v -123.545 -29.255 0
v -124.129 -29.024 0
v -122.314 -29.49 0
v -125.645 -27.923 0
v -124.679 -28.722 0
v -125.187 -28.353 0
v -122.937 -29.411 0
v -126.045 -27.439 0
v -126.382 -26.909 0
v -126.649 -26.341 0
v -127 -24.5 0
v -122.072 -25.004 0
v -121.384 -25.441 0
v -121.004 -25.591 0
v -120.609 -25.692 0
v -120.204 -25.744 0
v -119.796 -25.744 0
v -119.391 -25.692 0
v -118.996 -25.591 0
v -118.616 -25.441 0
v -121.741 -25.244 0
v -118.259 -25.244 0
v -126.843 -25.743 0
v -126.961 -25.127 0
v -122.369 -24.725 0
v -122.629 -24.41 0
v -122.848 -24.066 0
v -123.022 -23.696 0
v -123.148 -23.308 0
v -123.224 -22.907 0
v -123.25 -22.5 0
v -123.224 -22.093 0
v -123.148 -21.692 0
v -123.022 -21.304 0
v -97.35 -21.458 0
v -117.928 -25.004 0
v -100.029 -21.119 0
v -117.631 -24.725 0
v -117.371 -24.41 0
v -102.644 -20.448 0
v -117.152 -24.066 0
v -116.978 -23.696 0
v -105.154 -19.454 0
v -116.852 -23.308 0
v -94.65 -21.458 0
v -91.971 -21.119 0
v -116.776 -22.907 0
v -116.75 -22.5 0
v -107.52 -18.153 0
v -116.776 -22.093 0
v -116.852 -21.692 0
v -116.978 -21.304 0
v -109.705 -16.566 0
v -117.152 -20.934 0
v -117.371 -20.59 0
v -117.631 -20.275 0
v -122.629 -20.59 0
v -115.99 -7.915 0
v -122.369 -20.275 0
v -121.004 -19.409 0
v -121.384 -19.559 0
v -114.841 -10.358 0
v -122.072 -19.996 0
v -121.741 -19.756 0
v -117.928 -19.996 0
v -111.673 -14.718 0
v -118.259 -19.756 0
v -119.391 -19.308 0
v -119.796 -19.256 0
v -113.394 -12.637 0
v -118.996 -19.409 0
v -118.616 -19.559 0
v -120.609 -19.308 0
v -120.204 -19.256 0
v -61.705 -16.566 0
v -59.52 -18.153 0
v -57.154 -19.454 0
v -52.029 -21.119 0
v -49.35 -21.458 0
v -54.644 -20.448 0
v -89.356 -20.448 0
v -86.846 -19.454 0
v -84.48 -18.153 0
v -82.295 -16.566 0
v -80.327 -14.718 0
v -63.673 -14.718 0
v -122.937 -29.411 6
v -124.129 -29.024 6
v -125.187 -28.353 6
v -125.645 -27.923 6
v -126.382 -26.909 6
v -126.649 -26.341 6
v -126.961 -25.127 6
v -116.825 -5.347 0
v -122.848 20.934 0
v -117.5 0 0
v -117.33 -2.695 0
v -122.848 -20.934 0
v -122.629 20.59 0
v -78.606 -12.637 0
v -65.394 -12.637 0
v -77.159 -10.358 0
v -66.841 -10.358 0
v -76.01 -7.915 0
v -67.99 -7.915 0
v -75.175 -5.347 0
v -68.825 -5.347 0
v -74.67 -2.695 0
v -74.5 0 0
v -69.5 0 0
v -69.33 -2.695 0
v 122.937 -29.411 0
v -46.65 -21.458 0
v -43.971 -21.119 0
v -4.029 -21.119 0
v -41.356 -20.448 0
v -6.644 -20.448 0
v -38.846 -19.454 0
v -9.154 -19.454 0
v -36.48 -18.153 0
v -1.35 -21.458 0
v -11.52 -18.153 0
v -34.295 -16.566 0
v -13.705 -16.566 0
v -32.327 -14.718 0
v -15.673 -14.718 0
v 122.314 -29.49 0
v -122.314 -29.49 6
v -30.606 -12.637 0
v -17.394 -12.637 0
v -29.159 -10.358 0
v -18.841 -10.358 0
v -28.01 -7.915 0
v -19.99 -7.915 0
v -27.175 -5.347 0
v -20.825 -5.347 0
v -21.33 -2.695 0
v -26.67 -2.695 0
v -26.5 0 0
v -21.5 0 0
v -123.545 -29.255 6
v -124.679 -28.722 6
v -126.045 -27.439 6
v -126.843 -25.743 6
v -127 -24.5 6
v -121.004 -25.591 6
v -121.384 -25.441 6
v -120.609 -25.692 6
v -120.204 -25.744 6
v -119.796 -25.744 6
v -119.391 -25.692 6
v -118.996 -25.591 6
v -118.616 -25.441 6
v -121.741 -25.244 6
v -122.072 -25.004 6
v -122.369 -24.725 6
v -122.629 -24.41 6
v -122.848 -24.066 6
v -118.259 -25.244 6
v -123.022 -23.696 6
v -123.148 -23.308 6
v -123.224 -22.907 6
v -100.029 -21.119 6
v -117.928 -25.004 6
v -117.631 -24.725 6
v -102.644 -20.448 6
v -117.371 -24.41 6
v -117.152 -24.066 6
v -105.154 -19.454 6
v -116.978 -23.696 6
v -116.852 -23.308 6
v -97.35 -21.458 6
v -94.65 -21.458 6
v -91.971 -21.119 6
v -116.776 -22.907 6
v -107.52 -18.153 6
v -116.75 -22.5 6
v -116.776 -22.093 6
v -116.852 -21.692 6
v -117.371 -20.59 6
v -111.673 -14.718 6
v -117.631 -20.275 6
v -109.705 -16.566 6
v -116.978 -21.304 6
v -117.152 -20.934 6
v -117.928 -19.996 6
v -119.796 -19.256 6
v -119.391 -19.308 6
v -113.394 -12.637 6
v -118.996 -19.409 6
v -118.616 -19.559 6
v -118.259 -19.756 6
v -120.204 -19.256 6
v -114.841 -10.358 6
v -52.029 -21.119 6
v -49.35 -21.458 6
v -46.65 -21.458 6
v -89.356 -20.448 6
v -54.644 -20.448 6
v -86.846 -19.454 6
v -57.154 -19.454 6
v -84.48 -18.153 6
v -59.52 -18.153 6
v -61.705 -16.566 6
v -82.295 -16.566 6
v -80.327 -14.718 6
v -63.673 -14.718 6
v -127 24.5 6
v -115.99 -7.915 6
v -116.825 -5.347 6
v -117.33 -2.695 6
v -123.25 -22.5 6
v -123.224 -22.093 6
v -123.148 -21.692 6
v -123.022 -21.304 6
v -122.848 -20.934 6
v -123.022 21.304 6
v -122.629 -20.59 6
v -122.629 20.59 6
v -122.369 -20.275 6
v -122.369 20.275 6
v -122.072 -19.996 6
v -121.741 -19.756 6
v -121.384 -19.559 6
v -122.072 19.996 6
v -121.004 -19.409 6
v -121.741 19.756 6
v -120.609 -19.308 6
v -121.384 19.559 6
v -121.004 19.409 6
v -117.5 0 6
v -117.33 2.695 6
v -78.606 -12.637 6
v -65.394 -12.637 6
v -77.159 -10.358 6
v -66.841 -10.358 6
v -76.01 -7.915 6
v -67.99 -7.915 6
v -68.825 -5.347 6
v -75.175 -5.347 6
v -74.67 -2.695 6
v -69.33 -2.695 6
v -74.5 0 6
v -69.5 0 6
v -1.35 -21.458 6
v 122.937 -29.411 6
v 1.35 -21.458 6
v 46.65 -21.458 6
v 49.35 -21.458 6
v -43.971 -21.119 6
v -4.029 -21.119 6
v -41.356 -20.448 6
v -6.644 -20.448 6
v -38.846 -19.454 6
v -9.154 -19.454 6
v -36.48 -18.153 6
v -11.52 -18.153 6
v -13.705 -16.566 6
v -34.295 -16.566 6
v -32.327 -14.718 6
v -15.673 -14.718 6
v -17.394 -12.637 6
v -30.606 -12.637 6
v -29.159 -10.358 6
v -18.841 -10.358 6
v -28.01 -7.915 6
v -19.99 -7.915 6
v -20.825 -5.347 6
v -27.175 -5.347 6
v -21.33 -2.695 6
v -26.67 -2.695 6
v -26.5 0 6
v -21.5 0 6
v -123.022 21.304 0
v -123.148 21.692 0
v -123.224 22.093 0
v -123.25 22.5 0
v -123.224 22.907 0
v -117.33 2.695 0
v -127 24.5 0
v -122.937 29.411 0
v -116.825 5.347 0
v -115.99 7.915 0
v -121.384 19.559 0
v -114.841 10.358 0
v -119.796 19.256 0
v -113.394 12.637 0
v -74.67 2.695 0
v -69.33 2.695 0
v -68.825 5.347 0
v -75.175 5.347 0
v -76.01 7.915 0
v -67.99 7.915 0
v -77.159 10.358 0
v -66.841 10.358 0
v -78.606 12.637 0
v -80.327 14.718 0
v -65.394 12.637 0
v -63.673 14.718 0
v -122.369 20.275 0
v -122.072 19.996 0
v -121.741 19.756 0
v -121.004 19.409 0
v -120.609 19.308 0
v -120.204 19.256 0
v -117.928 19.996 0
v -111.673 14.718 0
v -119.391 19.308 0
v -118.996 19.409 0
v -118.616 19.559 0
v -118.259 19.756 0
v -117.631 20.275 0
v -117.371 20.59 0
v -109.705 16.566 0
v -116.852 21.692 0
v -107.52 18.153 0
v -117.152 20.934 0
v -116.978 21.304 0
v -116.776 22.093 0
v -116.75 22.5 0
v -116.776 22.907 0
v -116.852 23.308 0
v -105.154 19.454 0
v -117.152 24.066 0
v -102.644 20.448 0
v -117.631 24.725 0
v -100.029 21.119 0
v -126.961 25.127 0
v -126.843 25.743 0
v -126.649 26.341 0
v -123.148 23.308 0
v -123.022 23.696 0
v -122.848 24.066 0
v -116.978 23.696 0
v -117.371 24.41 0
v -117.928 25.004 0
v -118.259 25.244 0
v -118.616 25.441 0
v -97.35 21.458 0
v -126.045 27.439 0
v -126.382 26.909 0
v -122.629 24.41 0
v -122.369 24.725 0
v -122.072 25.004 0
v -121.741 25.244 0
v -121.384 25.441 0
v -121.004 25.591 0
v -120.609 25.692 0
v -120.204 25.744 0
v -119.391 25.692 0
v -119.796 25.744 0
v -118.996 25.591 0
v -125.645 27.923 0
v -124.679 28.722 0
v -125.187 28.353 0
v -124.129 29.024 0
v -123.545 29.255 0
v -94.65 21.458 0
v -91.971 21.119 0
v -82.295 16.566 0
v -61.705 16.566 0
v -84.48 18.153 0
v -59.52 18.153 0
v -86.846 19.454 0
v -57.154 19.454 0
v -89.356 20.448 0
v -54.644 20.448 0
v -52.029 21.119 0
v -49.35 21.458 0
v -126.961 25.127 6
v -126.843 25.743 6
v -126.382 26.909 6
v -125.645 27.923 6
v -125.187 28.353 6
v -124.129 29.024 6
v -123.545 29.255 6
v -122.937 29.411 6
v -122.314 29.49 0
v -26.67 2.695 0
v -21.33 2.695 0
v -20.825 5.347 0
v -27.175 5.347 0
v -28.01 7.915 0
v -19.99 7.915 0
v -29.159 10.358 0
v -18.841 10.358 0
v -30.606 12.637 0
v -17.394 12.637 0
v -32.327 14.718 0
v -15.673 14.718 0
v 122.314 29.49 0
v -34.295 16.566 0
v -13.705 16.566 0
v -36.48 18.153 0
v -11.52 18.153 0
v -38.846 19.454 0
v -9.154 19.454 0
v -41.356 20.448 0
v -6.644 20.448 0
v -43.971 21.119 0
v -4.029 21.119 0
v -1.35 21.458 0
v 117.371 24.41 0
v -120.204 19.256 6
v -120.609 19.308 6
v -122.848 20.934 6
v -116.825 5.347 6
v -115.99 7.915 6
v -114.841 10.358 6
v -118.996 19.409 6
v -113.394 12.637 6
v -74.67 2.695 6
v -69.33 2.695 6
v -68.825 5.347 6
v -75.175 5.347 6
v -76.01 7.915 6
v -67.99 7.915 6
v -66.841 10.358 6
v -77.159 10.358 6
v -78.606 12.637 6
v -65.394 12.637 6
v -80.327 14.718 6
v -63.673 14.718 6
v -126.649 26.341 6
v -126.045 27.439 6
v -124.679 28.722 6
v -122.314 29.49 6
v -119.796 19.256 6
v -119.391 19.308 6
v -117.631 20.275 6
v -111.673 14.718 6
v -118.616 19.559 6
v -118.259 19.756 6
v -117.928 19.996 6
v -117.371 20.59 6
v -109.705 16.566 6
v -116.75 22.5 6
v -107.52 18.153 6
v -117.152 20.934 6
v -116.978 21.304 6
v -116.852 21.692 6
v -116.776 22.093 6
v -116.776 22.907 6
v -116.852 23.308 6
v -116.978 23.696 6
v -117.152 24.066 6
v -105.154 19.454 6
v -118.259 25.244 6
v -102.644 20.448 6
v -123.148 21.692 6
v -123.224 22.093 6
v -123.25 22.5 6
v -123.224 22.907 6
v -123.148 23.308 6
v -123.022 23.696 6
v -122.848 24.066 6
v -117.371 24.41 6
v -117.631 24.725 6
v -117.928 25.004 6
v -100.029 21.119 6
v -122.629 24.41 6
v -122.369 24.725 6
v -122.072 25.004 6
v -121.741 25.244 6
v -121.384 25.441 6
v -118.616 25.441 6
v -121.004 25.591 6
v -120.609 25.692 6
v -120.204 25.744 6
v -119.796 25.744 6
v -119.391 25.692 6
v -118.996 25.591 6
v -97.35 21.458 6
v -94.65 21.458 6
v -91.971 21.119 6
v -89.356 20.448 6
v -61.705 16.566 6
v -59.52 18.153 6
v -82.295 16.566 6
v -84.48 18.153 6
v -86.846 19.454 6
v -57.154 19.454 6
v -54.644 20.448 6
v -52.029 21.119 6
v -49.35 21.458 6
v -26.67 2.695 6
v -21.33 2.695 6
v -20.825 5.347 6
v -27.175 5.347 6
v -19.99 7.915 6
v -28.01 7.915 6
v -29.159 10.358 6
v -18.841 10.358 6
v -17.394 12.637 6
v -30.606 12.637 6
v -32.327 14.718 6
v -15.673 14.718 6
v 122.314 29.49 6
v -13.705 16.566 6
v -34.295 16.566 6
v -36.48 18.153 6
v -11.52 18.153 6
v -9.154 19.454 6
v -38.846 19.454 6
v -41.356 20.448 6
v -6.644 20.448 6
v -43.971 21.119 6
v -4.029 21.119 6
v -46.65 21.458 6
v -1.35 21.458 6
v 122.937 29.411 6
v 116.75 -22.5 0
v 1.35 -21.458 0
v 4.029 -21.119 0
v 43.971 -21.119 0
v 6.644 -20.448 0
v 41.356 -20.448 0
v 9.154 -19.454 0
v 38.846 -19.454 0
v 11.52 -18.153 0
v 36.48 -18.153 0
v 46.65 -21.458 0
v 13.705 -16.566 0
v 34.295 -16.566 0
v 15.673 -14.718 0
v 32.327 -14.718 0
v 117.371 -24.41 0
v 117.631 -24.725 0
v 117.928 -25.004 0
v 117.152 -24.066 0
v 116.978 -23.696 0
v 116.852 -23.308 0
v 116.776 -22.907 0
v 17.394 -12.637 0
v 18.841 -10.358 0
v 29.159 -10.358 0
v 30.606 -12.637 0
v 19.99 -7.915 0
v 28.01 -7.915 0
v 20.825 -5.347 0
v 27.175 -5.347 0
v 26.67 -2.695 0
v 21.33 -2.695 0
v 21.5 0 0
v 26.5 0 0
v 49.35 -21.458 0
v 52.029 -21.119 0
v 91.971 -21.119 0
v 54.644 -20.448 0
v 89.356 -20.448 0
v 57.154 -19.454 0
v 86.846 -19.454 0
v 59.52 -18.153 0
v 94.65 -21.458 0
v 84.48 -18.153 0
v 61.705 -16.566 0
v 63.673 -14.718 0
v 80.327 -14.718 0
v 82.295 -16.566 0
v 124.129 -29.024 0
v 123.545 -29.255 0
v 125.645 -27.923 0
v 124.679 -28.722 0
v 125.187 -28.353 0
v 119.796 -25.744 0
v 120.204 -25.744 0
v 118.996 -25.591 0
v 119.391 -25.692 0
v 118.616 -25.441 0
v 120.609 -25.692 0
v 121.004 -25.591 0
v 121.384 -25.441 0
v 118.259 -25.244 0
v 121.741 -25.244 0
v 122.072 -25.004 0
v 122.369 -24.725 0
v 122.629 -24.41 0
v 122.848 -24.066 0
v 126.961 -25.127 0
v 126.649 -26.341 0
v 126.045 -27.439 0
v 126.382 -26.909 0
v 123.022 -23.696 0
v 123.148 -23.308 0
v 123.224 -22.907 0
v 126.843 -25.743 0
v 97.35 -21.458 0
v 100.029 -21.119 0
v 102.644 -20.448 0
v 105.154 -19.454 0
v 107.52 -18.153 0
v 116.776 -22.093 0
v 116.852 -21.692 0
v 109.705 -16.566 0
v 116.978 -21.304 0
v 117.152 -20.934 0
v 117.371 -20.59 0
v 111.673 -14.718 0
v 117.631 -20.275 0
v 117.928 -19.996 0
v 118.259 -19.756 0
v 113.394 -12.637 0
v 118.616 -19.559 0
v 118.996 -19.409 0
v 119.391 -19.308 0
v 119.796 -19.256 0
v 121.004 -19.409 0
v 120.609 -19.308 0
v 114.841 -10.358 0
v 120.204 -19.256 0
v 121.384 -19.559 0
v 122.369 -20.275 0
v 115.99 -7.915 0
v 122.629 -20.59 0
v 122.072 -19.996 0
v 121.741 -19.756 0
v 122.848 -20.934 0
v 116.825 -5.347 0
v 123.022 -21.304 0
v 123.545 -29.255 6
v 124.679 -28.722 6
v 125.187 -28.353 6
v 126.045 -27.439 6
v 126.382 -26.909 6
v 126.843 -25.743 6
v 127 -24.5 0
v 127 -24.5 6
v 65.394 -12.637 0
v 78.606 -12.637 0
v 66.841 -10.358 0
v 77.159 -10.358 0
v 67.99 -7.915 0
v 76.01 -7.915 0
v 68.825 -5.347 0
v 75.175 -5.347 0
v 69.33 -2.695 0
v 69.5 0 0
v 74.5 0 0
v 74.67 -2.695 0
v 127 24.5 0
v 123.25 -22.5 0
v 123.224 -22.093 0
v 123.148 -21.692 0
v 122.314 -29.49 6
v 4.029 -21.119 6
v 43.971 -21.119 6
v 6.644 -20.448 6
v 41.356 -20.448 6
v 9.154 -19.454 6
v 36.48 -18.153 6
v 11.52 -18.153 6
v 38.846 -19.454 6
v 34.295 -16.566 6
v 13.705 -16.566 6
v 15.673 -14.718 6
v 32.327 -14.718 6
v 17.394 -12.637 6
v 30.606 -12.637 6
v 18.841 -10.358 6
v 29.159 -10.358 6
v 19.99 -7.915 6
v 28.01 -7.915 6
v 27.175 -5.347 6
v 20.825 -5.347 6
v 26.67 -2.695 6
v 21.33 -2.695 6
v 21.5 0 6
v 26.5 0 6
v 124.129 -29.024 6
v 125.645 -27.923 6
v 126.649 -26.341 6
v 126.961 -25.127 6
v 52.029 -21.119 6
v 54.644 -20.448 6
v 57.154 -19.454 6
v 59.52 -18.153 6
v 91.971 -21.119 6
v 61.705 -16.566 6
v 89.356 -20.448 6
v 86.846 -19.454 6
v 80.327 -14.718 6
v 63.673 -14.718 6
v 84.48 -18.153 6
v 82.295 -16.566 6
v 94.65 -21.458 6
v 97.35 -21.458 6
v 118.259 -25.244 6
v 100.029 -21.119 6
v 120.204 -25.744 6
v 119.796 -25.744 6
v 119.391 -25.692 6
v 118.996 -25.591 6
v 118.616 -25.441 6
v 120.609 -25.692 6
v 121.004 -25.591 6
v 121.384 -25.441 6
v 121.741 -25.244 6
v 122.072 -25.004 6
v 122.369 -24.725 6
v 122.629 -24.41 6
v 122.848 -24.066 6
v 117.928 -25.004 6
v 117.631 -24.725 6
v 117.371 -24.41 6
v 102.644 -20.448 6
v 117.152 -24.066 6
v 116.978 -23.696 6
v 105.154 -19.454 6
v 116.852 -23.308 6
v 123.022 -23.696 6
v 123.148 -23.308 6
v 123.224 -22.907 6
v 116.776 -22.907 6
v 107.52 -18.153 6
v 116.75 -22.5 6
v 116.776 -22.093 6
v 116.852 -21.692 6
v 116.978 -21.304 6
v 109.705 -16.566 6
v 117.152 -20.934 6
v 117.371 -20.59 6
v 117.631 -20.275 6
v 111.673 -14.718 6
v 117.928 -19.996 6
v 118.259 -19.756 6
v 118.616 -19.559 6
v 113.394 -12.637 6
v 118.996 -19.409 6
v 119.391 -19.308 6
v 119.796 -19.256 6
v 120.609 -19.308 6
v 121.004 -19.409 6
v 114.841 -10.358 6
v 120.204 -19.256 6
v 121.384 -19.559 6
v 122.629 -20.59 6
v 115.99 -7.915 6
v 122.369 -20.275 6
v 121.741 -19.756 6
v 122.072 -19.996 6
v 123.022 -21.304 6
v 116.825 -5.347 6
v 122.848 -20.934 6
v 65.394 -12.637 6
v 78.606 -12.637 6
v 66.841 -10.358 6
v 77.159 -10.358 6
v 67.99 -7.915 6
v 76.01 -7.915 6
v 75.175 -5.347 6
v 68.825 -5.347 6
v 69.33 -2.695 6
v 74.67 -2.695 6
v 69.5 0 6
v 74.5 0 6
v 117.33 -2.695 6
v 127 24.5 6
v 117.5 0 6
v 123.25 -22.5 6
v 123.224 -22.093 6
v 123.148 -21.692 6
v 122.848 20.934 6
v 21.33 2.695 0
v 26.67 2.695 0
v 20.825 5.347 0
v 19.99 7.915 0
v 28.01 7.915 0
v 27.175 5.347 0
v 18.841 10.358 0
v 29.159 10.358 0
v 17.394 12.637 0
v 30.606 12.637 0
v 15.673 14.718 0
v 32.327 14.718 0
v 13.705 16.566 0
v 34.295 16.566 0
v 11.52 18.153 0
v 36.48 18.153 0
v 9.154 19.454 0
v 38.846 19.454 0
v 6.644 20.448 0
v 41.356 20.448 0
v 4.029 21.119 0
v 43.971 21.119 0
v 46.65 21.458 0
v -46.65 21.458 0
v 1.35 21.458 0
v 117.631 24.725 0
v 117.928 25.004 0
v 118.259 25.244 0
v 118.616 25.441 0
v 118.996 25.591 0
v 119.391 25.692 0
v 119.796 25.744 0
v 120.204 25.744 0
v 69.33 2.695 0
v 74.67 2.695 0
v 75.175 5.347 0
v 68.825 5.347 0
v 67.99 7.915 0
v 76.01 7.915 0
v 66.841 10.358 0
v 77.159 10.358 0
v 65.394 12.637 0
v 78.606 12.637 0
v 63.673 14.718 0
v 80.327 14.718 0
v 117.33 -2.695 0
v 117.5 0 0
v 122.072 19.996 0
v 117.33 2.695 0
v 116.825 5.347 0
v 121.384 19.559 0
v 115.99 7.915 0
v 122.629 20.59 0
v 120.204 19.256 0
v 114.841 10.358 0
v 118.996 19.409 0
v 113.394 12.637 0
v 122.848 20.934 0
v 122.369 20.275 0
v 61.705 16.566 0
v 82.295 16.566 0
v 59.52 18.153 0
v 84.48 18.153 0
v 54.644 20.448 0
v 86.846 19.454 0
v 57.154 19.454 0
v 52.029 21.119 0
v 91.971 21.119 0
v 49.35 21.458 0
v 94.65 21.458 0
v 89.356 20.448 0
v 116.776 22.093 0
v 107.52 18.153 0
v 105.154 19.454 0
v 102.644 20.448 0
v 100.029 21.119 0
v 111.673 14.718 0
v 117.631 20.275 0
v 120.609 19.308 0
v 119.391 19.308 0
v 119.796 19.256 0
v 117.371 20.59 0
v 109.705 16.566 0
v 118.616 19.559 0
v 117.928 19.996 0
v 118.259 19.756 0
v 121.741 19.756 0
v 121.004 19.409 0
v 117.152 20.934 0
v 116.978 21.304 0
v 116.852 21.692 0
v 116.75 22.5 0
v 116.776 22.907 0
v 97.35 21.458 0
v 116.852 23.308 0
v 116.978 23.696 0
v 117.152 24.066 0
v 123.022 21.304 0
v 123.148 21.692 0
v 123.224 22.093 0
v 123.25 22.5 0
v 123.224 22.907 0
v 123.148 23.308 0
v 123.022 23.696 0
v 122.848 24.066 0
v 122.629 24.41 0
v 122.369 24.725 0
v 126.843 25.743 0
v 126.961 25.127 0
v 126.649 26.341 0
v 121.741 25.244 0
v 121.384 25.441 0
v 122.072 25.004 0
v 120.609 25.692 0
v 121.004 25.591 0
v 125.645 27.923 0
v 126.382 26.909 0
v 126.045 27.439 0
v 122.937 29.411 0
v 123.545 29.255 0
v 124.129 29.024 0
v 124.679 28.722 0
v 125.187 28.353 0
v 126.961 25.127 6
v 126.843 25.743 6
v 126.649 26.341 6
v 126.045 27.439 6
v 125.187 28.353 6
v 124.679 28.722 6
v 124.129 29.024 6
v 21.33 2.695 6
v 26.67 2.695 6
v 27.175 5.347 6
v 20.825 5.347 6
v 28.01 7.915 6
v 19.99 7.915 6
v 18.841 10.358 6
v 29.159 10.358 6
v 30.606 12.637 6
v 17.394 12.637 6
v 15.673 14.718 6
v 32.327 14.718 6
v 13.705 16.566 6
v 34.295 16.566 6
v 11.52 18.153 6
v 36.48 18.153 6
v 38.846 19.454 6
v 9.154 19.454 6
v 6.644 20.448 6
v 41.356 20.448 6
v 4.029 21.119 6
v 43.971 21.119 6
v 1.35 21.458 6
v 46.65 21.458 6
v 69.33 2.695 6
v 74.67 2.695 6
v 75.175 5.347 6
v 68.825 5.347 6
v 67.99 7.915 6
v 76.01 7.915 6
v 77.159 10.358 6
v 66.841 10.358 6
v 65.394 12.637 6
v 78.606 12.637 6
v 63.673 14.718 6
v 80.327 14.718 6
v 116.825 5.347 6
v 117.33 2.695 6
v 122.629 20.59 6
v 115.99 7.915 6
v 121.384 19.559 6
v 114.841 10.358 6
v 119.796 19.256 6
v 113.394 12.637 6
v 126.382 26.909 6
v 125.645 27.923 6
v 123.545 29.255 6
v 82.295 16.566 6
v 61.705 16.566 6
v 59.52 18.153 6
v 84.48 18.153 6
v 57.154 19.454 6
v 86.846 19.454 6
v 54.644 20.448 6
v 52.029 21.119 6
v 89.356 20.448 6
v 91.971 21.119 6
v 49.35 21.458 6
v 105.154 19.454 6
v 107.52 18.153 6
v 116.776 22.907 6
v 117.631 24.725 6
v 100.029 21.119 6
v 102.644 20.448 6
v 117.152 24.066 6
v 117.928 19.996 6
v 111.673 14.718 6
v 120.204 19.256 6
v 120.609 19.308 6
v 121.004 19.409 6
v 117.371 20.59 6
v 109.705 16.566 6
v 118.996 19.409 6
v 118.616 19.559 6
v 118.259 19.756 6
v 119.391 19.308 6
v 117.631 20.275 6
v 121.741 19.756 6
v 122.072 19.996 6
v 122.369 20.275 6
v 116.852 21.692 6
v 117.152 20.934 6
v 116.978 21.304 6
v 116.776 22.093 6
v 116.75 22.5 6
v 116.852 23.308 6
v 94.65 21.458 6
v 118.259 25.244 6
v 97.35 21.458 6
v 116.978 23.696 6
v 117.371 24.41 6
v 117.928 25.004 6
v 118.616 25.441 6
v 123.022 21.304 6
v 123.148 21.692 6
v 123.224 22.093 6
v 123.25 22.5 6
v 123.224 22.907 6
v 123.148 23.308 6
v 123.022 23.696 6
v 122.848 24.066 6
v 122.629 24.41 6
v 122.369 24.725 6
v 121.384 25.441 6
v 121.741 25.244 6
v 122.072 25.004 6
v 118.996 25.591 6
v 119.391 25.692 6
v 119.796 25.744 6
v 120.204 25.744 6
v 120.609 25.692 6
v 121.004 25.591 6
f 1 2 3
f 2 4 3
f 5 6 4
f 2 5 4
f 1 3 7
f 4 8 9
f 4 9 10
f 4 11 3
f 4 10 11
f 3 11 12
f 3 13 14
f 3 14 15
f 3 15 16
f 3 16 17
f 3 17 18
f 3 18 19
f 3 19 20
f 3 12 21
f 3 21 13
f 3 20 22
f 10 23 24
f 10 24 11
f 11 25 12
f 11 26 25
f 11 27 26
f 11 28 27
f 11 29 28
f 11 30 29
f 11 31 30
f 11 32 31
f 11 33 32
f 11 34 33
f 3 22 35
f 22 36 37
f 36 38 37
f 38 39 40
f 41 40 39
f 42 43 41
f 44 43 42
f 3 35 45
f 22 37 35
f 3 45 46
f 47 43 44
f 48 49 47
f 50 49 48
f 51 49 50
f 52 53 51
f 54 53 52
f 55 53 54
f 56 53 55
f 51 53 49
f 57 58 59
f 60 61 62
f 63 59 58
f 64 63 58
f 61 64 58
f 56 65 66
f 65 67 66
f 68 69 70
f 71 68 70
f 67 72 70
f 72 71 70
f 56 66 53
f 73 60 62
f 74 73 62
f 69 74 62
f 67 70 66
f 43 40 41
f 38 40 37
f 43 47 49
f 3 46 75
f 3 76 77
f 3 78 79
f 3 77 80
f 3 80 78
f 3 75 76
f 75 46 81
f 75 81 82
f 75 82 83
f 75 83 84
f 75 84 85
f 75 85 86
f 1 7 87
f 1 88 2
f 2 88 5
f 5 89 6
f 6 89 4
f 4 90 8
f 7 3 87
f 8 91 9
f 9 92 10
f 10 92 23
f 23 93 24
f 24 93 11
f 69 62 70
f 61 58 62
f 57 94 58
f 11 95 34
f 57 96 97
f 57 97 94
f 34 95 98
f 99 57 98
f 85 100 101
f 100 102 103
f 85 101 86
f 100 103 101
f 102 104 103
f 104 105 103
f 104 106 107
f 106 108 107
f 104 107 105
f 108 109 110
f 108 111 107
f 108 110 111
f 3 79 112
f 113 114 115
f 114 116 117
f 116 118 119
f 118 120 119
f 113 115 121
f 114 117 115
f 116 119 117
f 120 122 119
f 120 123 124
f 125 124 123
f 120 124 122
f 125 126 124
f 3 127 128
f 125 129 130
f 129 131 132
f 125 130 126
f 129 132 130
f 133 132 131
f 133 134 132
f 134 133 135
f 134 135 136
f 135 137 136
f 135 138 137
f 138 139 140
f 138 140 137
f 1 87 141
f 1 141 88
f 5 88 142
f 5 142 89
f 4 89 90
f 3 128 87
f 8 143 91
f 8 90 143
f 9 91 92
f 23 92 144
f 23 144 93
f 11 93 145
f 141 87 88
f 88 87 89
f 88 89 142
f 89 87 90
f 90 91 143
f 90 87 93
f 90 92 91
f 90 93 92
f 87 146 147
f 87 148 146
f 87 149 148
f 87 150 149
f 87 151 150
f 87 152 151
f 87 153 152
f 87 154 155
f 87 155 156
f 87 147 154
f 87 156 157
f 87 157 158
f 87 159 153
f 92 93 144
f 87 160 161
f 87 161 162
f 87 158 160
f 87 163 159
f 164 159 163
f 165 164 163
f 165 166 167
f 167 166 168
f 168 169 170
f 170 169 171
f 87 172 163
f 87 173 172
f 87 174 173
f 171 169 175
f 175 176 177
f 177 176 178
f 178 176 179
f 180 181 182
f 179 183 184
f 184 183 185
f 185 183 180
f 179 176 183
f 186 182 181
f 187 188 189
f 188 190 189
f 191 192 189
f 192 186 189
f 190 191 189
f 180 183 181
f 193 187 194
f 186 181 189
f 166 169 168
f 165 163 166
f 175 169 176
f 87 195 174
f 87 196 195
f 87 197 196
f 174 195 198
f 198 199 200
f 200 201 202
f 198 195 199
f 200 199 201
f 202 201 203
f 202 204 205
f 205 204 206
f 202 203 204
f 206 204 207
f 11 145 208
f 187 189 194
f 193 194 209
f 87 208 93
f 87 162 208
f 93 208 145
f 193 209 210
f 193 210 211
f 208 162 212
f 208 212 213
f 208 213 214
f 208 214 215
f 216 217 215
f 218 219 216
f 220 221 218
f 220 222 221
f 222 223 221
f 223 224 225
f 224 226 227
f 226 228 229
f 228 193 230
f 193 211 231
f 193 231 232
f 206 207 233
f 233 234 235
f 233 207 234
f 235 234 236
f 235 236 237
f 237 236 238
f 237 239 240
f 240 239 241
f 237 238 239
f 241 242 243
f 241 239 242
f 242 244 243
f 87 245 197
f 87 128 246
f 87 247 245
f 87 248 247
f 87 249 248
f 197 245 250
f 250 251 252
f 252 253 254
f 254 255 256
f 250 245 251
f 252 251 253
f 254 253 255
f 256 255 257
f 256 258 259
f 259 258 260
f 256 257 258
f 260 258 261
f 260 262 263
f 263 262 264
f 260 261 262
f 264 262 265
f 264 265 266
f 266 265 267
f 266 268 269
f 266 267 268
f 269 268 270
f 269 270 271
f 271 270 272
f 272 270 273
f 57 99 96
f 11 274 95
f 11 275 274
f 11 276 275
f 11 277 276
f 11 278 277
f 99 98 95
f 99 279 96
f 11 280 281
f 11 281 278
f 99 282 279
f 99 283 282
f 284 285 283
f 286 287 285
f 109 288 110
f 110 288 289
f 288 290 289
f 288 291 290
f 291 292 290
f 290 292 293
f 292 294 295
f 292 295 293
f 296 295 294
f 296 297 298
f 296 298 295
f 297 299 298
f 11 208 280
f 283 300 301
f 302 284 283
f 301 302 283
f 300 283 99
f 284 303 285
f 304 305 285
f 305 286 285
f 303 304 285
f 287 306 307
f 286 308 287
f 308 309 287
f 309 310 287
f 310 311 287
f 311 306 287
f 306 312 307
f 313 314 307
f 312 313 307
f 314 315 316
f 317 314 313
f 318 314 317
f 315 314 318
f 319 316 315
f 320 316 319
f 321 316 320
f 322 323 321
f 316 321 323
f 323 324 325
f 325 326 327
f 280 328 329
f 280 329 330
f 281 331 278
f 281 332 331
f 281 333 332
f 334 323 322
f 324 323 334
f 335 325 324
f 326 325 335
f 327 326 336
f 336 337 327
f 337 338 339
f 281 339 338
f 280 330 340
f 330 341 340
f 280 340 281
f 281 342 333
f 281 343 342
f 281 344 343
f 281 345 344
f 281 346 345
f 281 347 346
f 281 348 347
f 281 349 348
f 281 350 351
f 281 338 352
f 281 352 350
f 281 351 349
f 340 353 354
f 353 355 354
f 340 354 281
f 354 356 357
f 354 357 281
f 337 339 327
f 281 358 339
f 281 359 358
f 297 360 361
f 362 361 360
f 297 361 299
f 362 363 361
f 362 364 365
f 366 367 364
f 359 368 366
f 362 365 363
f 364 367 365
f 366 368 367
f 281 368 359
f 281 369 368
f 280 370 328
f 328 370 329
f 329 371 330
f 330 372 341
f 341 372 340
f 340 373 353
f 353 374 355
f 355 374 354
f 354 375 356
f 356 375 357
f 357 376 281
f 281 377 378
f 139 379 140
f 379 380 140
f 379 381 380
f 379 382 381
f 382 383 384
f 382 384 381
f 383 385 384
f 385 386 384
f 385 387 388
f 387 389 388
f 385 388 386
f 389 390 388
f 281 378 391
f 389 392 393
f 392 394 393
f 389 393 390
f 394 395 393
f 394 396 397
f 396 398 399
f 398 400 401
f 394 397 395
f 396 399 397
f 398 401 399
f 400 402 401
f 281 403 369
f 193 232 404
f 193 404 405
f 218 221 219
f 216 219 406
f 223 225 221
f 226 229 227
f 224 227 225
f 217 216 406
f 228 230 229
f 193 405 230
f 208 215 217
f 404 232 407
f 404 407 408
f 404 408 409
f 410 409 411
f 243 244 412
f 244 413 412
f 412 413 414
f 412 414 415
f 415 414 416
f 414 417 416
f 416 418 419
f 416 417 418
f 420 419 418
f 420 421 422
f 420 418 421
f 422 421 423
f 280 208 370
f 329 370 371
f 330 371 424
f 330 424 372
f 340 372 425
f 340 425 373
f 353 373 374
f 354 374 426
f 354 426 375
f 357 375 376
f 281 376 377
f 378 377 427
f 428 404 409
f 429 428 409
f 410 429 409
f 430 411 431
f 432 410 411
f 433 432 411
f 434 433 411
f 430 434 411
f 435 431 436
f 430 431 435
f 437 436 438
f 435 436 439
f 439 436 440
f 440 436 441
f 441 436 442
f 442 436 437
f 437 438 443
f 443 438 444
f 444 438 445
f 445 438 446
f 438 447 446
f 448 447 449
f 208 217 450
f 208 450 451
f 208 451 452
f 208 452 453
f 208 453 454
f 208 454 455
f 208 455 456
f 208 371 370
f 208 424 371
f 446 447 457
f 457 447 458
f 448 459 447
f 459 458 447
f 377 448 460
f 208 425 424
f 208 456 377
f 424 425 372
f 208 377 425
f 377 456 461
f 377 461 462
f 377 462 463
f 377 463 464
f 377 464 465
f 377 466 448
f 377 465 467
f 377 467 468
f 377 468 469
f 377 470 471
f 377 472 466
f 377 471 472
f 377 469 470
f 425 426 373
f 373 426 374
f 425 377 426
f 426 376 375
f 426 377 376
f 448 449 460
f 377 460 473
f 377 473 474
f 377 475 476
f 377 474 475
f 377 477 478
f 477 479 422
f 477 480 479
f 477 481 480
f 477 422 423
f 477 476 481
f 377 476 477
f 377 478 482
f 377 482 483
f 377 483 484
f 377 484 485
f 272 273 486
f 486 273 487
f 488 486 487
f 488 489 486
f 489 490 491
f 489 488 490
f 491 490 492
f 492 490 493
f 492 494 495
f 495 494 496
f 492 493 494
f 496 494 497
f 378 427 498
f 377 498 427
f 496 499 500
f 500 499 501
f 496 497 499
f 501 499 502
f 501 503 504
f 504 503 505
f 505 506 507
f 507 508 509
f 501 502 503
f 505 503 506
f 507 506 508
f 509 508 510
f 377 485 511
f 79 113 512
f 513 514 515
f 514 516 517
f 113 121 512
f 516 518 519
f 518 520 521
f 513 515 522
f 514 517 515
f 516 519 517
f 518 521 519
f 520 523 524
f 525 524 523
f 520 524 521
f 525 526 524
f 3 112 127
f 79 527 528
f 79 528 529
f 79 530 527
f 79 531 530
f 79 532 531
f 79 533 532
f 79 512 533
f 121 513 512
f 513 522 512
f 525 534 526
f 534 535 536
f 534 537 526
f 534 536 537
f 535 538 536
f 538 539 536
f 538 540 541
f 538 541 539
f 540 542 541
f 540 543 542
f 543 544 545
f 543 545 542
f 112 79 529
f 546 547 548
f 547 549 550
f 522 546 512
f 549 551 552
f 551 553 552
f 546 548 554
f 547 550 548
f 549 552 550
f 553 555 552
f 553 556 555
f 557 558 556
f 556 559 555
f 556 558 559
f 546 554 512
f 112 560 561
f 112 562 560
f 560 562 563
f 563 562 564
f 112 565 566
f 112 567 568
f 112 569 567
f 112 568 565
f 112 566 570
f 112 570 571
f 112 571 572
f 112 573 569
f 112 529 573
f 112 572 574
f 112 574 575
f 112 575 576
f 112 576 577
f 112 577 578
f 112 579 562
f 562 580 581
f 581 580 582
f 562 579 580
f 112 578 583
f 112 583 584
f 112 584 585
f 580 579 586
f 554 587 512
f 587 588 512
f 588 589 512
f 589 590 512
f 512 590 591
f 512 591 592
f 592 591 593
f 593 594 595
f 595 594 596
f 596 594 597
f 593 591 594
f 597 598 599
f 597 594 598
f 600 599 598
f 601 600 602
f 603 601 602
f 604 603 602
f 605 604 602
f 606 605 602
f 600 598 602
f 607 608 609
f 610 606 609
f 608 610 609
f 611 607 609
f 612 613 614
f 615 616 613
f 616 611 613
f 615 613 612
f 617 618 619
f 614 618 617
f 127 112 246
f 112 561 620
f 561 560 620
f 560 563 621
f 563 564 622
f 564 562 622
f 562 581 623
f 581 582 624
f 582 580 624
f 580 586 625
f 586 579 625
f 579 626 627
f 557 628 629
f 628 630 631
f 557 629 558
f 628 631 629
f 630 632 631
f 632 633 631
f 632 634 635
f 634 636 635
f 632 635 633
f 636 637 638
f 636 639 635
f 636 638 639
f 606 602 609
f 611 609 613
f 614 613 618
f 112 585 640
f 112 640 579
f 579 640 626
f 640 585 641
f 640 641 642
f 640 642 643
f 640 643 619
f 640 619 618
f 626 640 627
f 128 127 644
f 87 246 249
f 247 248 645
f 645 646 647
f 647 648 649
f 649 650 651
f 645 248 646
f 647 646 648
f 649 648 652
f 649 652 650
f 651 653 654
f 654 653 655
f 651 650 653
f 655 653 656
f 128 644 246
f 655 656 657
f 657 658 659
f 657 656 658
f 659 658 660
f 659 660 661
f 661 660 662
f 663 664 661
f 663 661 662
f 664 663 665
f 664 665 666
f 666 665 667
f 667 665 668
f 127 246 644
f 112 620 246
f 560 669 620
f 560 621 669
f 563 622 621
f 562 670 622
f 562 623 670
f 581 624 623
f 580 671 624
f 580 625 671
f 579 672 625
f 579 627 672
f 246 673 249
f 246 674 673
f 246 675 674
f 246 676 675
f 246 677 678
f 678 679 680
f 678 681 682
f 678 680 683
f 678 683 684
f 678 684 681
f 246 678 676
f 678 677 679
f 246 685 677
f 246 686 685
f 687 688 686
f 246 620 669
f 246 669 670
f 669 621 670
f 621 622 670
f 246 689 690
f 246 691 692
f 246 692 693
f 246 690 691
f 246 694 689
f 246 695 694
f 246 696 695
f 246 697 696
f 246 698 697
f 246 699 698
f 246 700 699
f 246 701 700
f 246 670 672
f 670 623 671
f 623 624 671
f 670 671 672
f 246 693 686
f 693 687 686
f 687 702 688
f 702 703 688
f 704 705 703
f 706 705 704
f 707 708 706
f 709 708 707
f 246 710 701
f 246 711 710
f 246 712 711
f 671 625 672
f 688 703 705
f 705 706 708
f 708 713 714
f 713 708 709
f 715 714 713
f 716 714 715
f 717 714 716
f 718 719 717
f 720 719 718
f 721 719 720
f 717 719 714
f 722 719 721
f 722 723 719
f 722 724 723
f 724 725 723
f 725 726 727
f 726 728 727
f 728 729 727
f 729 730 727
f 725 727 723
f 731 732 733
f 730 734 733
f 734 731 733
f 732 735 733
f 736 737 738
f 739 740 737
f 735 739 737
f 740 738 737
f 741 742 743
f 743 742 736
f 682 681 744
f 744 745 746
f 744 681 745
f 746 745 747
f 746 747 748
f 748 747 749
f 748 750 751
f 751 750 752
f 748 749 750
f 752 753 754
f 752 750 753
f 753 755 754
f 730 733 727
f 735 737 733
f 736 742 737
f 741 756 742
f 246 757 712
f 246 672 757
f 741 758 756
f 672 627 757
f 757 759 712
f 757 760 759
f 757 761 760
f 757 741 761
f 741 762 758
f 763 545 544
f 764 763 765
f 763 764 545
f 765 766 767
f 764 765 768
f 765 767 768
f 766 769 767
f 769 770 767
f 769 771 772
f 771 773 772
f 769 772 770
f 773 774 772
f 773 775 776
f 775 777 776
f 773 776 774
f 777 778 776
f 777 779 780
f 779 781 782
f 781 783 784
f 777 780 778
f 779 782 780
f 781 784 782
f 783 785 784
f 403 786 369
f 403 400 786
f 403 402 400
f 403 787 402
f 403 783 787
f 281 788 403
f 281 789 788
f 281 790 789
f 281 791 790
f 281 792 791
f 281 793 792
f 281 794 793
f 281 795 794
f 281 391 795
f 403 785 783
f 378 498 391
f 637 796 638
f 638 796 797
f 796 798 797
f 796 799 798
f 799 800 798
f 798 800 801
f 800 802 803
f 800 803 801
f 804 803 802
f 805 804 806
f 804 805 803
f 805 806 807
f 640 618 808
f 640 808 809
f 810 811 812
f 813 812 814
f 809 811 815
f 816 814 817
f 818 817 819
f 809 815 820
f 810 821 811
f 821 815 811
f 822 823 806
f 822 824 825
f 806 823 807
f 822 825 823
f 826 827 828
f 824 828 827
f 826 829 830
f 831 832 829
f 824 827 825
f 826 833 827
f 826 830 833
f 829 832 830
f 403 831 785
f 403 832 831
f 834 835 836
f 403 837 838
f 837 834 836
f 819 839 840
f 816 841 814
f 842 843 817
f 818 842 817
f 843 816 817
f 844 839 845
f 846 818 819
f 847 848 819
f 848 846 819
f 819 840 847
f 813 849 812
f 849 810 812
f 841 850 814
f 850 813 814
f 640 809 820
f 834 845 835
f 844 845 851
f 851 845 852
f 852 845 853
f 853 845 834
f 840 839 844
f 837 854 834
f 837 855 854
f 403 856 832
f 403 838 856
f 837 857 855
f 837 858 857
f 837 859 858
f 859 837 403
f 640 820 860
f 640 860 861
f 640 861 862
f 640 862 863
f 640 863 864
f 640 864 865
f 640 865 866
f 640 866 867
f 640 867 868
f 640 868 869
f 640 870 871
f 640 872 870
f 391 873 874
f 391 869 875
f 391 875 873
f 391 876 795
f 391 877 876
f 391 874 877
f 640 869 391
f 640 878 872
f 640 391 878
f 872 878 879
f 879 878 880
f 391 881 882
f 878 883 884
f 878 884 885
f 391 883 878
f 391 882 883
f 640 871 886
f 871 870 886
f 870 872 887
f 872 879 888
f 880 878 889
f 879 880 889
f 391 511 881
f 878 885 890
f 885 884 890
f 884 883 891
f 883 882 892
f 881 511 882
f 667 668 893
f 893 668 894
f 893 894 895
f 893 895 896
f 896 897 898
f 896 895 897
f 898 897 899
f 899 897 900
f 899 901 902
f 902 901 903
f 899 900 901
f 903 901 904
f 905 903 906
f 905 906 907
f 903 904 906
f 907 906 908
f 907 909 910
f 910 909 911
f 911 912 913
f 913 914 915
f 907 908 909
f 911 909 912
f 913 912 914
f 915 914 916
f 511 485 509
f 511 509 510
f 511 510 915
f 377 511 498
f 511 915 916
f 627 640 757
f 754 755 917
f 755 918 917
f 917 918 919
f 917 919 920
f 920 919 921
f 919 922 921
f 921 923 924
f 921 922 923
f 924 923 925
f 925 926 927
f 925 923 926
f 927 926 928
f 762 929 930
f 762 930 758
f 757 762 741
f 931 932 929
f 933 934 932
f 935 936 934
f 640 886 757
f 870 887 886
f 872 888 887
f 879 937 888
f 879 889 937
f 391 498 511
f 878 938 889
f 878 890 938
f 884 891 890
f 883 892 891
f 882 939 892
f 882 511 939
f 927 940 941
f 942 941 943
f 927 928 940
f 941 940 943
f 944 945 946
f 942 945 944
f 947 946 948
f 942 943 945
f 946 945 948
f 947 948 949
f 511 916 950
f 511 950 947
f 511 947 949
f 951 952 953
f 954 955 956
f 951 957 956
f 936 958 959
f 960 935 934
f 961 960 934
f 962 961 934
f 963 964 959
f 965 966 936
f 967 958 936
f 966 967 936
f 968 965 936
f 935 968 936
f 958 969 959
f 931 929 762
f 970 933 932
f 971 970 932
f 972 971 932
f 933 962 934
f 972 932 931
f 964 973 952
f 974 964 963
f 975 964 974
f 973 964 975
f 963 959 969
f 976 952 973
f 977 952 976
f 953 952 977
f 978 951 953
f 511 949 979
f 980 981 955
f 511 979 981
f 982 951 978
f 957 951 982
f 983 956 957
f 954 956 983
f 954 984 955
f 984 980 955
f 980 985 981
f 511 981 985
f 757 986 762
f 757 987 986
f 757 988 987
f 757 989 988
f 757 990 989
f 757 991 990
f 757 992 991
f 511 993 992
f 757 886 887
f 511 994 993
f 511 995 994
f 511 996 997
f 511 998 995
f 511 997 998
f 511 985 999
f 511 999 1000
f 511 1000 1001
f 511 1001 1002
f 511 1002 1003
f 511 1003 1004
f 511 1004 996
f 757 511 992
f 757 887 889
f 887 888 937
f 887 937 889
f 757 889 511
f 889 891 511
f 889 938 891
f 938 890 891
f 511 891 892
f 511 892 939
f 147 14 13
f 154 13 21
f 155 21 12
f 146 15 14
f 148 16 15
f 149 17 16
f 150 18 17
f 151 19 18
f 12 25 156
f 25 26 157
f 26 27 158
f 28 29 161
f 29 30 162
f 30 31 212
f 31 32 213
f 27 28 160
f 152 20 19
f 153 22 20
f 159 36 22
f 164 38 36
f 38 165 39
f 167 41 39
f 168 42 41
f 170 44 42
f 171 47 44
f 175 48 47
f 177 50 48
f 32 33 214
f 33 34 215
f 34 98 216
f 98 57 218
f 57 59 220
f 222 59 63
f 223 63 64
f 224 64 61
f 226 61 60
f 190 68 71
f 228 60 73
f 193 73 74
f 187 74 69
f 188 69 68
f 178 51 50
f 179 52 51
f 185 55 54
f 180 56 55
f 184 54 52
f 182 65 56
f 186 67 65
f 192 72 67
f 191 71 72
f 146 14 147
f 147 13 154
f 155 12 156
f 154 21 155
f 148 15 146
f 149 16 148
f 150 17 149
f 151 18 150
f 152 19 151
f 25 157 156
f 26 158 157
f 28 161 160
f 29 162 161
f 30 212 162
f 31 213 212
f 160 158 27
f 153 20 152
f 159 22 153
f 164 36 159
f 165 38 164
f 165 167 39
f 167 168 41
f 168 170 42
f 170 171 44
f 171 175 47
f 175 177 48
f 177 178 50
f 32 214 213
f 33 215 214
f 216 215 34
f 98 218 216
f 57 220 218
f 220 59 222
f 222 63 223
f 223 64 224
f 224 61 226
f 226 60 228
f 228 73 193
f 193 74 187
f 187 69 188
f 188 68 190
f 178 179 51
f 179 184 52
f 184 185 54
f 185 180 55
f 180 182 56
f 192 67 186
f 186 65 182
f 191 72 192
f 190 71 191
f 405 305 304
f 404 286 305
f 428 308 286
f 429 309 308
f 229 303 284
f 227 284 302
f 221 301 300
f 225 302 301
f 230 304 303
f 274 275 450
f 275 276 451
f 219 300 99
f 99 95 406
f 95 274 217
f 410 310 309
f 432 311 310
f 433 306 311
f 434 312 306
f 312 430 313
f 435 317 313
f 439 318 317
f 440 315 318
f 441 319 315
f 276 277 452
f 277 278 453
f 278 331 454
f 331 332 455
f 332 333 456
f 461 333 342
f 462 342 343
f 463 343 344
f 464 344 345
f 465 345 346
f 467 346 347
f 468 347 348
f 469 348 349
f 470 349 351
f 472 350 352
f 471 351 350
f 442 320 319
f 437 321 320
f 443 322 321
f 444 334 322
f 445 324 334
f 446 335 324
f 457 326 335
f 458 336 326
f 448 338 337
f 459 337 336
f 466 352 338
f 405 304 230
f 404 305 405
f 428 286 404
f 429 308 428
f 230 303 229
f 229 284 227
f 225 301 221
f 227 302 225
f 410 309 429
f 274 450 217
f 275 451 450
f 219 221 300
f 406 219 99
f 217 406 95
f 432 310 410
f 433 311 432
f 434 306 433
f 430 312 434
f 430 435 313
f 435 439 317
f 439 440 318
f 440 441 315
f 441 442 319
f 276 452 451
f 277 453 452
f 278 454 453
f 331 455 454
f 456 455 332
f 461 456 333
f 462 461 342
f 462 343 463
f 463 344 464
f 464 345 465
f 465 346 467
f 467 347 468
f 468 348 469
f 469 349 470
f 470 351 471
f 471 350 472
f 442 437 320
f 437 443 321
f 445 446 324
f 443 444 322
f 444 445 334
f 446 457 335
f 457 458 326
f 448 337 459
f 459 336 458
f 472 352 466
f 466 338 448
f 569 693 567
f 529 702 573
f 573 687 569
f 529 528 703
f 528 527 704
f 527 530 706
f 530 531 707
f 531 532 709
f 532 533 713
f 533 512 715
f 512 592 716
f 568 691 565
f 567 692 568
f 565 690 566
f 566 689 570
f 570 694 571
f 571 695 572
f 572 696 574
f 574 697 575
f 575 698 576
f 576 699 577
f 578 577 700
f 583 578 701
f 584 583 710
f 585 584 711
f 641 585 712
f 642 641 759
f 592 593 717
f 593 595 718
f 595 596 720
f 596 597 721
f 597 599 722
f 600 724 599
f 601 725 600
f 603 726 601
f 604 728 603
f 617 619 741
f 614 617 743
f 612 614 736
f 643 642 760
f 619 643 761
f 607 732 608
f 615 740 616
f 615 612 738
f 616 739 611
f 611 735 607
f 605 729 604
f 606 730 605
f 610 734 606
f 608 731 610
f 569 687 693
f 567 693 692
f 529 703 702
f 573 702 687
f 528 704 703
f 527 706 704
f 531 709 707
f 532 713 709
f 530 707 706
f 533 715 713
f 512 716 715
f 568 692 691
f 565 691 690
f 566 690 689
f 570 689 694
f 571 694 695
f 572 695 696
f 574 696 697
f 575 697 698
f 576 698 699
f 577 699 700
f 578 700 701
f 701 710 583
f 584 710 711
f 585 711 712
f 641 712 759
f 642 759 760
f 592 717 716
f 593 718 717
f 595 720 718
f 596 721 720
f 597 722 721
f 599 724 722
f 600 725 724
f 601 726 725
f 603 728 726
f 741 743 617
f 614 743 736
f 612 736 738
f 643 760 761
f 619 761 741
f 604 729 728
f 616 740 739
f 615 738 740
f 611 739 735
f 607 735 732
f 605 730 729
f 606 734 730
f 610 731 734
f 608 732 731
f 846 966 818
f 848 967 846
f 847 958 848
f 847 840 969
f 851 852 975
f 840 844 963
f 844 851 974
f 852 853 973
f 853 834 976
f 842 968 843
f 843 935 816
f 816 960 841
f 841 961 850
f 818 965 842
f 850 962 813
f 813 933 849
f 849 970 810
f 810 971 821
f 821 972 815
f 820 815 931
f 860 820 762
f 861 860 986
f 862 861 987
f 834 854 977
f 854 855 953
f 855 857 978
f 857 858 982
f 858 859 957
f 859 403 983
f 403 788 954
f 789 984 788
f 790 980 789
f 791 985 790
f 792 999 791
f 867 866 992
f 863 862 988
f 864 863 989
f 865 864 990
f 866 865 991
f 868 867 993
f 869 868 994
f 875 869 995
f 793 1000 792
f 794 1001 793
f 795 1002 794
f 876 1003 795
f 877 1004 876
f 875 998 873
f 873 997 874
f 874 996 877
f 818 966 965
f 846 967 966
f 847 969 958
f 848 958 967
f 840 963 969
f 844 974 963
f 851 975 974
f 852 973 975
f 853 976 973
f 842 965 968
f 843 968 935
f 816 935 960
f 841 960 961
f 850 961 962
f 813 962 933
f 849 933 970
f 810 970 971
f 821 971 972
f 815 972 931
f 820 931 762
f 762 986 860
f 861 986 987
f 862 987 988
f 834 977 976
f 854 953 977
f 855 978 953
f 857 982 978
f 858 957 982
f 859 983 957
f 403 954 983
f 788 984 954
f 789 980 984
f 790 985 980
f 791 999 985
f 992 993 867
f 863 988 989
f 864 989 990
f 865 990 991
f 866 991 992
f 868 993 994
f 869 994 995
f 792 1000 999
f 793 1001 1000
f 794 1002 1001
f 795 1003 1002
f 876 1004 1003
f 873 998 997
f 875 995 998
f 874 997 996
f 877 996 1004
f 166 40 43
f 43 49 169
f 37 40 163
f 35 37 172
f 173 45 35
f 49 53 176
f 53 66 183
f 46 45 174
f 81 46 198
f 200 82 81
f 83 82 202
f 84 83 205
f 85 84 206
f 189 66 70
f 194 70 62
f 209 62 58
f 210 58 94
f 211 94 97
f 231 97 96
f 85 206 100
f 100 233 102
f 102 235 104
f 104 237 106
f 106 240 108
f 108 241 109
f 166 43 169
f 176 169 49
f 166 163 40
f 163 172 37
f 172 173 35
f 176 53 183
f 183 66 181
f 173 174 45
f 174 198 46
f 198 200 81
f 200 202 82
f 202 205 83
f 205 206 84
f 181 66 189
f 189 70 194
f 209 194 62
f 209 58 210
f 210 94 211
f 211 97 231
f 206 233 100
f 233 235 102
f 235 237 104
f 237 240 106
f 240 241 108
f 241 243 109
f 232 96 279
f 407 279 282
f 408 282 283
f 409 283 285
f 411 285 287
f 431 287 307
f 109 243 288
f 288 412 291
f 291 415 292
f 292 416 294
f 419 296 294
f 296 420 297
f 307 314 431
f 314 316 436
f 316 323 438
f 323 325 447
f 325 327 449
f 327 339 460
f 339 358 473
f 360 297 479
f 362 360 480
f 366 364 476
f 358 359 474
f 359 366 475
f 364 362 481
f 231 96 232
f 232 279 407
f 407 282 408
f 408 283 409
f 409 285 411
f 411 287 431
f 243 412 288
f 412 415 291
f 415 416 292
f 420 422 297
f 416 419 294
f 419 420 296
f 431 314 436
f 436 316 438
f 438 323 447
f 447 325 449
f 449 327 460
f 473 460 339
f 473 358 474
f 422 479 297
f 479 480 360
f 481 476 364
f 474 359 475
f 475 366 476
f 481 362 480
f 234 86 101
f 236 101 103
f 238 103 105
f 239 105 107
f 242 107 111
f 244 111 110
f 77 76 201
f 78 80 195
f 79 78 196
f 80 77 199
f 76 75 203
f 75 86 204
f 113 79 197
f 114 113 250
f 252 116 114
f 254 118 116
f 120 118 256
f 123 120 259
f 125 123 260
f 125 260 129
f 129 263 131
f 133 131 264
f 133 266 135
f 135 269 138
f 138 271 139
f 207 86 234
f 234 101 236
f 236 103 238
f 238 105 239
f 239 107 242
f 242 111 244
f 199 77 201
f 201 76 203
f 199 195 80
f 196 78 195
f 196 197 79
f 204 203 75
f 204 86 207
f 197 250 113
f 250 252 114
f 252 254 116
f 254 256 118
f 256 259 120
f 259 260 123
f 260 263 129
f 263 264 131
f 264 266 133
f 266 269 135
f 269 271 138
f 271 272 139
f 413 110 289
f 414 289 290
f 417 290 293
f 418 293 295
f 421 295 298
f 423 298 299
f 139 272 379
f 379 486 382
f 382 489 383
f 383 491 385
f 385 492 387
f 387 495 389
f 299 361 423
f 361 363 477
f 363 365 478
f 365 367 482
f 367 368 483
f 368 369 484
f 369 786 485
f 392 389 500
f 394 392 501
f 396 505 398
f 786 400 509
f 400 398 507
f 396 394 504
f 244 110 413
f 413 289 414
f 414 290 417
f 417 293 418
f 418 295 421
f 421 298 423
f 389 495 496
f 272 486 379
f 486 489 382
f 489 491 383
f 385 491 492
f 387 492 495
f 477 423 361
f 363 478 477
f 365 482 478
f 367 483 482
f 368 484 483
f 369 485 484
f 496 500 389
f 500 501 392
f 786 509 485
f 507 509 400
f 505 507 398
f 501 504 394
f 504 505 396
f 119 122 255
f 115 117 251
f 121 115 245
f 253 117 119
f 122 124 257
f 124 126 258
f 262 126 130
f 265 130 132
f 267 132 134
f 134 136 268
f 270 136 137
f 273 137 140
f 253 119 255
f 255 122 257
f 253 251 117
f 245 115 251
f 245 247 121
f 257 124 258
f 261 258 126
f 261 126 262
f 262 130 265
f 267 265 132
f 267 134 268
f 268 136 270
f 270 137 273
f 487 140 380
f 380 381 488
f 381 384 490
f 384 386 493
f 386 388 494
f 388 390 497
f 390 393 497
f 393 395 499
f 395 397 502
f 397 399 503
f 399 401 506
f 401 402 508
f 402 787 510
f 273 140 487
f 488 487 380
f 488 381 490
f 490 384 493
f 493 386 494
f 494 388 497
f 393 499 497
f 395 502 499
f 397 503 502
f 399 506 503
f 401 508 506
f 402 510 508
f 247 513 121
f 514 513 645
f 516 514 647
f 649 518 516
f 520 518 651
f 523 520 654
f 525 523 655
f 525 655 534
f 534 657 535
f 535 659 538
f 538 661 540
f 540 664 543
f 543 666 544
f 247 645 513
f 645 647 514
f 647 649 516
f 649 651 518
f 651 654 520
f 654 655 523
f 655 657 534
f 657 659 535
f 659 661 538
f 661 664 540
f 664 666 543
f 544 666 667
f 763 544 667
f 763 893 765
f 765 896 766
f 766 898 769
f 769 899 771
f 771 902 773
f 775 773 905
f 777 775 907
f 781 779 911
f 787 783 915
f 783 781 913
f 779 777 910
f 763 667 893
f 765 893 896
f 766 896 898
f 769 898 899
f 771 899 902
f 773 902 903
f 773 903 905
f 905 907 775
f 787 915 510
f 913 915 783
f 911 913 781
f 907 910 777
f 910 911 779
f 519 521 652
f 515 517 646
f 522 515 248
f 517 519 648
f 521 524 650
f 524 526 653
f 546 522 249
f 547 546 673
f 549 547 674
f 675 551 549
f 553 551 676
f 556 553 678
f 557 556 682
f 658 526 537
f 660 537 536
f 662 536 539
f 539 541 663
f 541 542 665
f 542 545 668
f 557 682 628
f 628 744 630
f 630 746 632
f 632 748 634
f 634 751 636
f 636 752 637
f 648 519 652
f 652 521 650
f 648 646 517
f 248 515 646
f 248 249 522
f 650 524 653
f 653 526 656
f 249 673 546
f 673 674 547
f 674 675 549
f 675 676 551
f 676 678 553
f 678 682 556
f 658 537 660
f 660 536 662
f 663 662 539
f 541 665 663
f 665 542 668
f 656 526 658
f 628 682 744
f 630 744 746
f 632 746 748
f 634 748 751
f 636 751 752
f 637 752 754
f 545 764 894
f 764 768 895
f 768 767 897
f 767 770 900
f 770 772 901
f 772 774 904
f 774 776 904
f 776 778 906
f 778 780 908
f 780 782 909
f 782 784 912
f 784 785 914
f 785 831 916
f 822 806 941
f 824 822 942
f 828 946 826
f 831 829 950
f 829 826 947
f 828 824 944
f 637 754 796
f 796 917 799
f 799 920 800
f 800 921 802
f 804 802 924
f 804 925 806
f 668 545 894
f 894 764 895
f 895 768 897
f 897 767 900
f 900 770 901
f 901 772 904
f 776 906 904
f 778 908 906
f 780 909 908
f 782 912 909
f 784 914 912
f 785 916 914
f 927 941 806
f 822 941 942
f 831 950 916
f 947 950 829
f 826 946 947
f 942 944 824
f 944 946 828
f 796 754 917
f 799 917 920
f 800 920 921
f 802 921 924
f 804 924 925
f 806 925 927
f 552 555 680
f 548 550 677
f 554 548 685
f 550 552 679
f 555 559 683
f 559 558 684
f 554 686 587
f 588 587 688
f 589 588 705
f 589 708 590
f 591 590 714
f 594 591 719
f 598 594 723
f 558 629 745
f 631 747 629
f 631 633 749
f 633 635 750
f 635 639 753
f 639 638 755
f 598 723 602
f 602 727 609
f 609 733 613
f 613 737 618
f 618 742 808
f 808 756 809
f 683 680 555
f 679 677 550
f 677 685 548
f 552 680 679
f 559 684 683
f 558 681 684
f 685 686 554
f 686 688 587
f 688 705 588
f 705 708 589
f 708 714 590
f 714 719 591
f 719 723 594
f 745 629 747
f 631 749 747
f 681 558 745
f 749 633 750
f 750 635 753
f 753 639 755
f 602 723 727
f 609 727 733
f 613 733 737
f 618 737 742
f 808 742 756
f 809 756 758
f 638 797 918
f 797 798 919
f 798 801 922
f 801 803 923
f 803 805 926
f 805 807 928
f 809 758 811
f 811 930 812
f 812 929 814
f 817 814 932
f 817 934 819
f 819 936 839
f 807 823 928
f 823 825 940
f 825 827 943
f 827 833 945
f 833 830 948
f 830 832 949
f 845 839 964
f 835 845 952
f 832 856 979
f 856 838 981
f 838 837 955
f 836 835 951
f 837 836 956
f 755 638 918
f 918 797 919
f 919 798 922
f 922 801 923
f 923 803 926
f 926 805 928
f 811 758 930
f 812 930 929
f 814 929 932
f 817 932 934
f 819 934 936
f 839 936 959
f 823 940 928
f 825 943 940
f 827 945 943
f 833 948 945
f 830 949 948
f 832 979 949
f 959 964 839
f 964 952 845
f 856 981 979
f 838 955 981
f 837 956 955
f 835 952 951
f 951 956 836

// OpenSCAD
$fn = 50;

difference() {
	union() {
		hull() {
			translate(v = [-122.0, 24.5, 0]) {
				cylinder(h = 6, r = 5);
			}
			translate(v = [122.0, 24.5, 0]) {
				cylinder(h = 6, r = 5);
			}
			translate(v = [-122.0, -24.5, 0]) {
				cylinder(h = 6, r = 5);
			}
			translate(v = [122.0, -24.5, 0]) {
				cylinder(h = 6, r = 5);
			}
		}
	}
	union() {
		translate(v = [-120.0, -22.5, -100.0]) {
			cylinder(h = 200, r = 3.25);
		}
		translate(v = [-120.0, 22.5, -100.0]) {
			cylinder(h = 200, r = 3.25);
		}
		translate(v = [120.0, -22.5, -100.0]) {
			cylinder(h = 200, r = 3.25);
		}
		translate(v = [120.0, 22.5, -100.0]) {
			cylinder(h = 200, r = 3.25);
		}
		translate(v = [-120.0, -22.5, -100.0]) {
			cylinder(h = 200, r = 1.8);
		}
		translate(v = [-120.0, 22.5, -100.0]) {
			cylinder(h = 200, r = 1.8);
		}
		translate(v = [120.0, -22.5, -100.0]) {
			cylinder(h = 200, r = 1.8);
		}
		translate(v = [120.0, 22.5, -100.0]) {
			cylinder(h = 200, r = 1.8);
		}
		translate(v = [-96.0, 0, 0.0]) {
			cylinder(h = 6, r = 21.5);
		}
		translate(v = [-48.0, 0, 0.0]) {
			cylinder(h = 6, r = 21.5);
		}
		cylinder(h = 6, r = 21.5);
		translate(v = [48.0, 0, 0.0]) {
			cylinder(h = 6, r = 21.5);
		}
		translate(v = [96.0, 0, 0.0]) {
			cylinder(h = 6, r = 21.5);
		}
	}
}
